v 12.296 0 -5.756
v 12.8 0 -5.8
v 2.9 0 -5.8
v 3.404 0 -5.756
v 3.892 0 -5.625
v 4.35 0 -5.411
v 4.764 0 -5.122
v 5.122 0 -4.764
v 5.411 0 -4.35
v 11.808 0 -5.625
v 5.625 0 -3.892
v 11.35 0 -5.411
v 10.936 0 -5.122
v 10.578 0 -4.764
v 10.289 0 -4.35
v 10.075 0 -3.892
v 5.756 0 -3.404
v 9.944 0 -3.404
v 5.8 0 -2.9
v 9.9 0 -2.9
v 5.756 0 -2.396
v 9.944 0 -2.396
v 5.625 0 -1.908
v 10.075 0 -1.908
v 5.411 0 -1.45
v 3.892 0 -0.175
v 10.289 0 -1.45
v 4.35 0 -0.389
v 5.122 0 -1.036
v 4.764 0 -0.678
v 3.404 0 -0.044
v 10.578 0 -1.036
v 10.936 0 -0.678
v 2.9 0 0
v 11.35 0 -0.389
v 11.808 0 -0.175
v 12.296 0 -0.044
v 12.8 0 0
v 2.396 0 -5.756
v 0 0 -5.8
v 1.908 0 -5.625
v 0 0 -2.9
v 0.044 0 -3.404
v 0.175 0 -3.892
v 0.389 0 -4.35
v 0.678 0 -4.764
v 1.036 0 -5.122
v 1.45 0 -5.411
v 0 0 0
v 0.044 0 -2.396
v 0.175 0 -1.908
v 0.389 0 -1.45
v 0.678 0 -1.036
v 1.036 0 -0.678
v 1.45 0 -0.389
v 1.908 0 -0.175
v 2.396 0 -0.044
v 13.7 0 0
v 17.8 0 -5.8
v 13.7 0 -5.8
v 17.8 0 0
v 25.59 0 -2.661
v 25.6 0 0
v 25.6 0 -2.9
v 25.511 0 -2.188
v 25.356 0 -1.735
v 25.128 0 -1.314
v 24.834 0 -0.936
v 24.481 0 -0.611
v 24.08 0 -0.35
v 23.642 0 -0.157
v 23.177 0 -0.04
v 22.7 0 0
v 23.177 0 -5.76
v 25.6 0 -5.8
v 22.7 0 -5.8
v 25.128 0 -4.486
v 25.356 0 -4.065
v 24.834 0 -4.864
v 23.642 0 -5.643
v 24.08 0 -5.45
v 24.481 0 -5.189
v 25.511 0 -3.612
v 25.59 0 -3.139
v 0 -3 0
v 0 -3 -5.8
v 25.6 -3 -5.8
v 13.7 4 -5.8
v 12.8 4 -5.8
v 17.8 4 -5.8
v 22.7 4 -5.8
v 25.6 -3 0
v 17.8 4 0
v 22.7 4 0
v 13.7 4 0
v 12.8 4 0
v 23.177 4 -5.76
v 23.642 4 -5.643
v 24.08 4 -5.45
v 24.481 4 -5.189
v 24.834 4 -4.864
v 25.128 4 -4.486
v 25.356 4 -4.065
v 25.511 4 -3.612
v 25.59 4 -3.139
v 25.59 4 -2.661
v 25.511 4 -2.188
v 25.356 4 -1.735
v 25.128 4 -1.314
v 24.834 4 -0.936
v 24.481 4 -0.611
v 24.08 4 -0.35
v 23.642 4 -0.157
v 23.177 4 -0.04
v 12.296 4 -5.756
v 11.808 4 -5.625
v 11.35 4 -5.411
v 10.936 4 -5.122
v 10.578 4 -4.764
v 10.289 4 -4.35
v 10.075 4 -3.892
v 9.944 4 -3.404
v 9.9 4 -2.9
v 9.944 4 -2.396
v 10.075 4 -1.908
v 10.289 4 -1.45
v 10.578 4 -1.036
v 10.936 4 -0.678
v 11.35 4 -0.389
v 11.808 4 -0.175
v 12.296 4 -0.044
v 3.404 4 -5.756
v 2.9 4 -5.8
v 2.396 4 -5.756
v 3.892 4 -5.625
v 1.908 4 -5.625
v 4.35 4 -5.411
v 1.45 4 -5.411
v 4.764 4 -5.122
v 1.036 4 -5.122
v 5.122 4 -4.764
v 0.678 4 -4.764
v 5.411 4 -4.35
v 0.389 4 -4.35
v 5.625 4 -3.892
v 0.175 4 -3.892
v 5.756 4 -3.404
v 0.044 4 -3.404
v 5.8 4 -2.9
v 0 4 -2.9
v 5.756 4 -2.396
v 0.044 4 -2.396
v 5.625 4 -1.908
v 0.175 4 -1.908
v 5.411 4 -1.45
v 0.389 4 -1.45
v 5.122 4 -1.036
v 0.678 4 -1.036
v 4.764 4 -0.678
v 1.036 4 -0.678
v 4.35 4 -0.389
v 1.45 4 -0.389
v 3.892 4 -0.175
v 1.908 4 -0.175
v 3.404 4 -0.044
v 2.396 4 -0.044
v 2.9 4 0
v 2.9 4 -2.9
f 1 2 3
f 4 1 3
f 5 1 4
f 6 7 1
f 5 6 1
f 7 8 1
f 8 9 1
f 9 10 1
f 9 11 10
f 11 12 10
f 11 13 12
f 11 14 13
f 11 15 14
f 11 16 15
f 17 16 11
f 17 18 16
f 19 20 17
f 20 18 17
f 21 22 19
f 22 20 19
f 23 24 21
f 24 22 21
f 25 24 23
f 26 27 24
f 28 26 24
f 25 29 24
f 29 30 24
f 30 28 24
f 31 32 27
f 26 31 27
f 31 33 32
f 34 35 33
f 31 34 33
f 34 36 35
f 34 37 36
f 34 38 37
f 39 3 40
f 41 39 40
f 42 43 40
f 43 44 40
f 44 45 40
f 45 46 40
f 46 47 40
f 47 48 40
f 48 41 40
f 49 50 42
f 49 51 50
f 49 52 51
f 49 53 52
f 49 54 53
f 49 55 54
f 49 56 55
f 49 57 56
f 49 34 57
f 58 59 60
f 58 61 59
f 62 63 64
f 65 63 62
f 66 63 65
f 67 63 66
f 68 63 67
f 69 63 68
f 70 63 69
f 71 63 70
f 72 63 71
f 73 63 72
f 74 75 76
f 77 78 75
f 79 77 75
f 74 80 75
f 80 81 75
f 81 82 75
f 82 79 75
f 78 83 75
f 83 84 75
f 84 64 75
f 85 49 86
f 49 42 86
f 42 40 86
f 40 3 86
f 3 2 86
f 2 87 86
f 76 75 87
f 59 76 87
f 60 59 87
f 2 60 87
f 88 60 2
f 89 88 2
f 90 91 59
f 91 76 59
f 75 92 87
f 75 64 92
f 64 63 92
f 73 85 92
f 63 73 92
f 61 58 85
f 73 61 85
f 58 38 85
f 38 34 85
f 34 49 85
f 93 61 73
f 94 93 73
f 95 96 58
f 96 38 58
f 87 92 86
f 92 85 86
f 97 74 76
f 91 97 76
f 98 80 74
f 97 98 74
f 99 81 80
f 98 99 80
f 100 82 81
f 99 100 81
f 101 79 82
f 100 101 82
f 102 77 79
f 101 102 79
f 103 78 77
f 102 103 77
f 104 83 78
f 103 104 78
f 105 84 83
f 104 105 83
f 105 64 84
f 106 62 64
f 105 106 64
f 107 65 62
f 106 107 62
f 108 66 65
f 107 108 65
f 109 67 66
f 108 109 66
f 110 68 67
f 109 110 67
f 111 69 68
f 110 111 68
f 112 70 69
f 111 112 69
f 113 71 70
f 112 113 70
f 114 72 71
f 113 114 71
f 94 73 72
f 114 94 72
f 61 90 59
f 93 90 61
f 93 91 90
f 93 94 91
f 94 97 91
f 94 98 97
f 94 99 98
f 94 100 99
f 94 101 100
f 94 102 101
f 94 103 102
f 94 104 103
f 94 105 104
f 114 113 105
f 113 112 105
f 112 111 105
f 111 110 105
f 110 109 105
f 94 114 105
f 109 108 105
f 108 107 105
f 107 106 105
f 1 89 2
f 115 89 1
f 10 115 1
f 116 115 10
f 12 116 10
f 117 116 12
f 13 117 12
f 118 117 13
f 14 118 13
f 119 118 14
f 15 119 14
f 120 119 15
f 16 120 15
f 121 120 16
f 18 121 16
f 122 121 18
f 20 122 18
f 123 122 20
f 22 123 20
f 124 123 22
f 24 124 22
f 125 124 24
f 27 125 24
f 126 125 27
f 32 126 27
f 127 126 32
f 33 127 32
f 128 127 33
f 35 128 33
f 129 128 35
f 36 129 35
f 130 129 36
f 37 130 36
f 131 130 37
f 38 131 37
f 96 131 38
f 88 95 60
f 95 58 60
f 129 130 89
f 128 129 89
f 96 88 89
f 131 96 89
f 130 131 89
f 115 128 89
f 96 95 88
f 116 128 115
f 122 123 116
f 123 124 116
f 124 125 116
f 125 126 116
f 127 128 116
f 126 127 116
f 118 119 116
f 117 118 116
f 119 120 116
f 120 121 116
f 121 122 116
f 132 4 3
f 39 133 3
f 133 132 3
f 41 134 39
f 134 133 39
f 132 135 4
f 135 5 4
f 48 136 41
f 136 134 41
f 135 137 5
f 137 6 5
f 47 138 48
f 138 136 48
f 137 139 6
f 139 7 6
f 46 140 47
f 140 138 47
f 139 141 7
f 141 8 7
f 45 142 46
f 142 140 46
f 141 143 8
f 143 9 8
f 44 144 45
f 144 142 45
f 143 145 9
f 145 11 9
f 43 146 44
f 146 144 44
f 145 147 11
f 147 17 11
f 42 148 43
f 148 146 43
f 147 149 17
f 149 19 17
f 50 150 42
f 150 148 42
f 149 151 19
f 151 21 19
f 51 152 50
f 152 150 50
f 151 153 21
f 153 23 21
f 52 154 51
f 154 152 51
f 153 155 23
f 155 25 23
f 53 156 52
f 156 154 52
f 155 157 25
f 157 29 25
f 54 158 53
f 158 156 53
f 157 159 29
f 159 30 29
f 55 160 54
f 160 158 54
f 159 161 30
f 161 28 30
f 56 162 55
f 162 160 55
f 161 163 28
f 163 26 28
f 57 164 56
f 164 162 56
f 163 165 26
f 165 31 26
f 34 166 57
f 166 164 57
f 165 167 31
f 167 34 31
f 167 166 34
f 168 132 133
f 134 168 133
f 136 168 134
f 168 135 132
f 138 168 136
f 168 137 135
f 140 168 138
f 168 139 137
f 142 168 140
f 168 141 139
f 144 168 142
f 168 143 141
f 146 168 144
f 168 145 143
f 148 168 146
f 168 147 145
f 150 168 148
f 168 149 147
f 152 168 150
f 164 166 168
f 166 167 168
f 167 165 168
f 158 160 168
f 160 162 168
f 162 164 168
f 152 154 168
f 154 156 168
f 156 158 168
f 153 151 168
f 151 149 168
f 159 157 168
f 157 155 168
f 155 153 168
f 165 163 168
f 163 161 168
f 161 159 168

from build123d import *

# Parameters (mm, degrees)
SKETCH1_W           = 25.6
SKETCH1_H           = 5.8
BOSS_EXTRUDE1_DEPTH = 3
SKETCH1_4_R         = 2.9
BOSS_EXTRUDE2_DEPTH = 4


with BuildPart() as part:
    # Sketch1 → Boss-Extrude1 (new body)
    with BuildSketch(Plane(origin=(0, 0, 0), x_dir=(1, 0, 0), z_dir=(0, 1, 0))):
        with Locations((12.8, 2.9)):
            Rectangle(SKETCH1_W, SKETCH1_H)
    extrude(amount=-BOSS_EXTRUDE1_DEPTH)

    # Sketch1<4> → Boss-Extrude2 (add)
    with BuildSketch(Plane(origin=(0, 0, 0), x_dir=(1, 0, 0), z_dir=(0, 1, 0))):
        with BuildLine():
            Line((13.7, 0), (13.7, 5.8))
            Line((13.7, 5.8), (12.8, 5.8))
            ThreePointArc((12.8, 5.8), (9.9, 2.9), (12.8, 0))
            Line((12.8, 0), (13.7, 0))
        make_face()
        with Locations((2.9, 2.9)):
            Circle(SKETCH1_4_R)
        with BuildLine():
            Line((17.8, 5.8), (17.8, 0))
            Line((17.8, 0), (22.7, 0))
            ThreePointArc((22.7, 0), (25.6, 2.9), (22.7, 5.8))
            Line((22.7, 5.8), (17.8, 5.8))
        make_face()
    extrude(amount=BOSS_EXTRUDE2_DEPTH)


solid = part.part
